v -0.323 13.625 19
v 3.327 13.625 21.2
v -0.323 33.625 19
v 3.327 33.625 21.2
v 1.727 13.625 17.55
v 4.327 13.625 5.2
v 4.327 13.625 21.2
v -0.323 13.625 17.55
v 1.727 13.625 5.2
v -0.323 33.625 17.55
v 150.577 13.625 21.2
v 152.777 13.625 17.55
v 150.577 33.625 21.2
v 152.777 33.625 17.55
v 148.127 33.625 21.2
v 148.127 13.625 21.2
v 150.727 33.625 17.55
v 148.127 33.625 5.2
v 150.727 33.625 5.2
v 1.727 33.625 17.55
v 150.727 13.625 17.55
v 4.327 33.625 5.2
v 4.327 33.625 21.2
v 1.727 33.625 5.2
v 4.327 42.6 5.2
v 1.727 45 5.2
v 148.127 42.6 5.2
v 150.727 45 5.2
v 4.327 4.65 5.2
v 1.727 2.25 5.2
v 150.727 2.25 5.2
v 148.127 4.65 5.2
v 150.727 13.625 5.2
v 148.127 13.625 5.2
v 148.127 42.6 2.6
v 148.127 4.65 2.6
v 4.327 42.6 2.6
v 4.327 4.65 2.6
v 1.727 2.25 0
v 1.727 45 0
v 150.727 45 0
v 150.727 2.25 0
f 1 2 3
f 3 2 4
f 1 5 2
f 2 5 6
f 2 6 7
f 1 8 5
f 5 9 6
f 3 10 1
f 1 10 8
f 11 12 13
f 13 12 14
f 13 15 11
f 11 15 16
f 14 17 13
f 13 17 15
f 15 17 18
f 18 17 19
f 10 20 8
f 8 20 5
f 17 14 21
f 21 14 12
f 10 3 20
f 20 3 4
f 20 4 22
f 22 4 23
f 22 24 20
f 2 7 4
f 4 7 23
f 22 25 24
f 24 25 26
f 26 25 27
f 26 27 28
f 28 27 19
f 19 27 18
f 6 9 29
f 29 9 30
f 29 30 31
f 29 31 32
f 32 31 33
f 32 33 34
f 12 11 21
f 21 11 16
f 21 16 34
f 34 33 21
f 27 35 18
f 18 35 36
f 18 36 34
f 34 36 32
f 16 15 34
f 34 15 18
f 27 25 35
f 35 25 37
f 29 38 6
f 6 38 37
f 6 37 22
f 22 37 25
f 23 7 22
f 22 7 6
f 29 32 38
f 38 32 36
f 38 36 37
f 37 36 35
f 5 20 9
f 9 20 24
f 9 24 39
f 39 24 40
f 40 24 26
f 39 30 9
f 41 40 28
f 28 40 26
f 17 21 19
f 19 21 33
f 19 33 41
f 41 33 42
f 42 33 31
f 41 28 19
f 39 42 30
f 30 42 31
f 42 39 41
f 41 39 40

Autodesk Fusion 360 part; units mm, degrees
sketch "Base" plane through (0, 0, 0) normal (0, 0, 1) x (1, 0, 0)
  line L0 (1.7267, 45) -> (150.7267, 45)
  line L1 (150.7267, 45) -> (150.7267, 2.25)
  line L2 (150.7267, 2.25) -> (1.7267, 2.25)
  line L3 (1.7267, 2.25) -> (1.7267, 45)
  dimension "d1" = 149
  dimension "d2" = 42.75
extrude "Extrude1" add sketch "Base" along normal blind 5.2
sketch "Frame" plane through (0, 0, 5.2) normal (0, 0, 1) x (-1, 0, 0)
  line L0 (-1.7267, -2.25) -> (-150.7267, -2.25)
  line L1 (-150.7267, -2.25) -> (-150.7267, -45)
  line L2 (-150.7267, -45) -> (-1.7267, -45)
  line L3 (-1.7267, -45) -> (-1.7267, -2.25)
  line L4 (-4.3267, -42.6) -> (-148.1267, -42.6)
  line L5 (-148.1267, -42.6) -> (-148.1267, -4.65)
  line L6 (-148.1267, -4.65) -> (-4.3267, -4.65)
  line L7 (-4.3267, -4.65) -> (-4.3267, -42.6)
  dimension "d5" = 2.4
  dimension "d6" = 2.6
  dimension "d7" = 2.4
  dimension "d8" = 2.6
extrude "Extrude2" cut sketch "Frame" against normal blind 2.6 contours L4 L5 L6 L7
sketch "Hook" plane through (0, 0, 5.2) normal (0, 0, 1) x (-1, 0, 0)
  line L0 (-148.1267, -42.6) -> (-148.1267, -4.65)
  line L1 (-148.1267, -4.65) -> (-4.3267, -4.65)
  line L2 (-4.3267, -4.65) -> (-4.3267, -42.6)
  line L3 (-4.3267, -42.6) -> (-148.1267, -42.6)
  line L4 (-1.7267, -2.25) -> (-150.7267, -2.25)
  line L5 (-150.7267, -2.25) -> (-150.7267, -45)
  line L6 (-150.7267, -45) -> (-1.7267, -45)
  line L7 (-1.7267, -45) -> (-1.7267, -2.25)
  line L8 (-1.7267, -33.625) -> (-4.3267, -33.625)
  line L9 (-4.3267, -13.625) -> (-1.7267, -13.625)
  line L10 (-148.1267, -33.625) -> (-150.7267, -33.625)
  line L11 (-148.1267, -13.625) -> (-150.7267, -13.625)
  dimension "d11" = 20
  dimension "d12" = 11.375
  dimension "d13" = 12.2767
  dimension "d14" = 11.375
  dimension "d15" = 20
extrude "Extrude3" add sketch "Hook" along normal blind 16 contours L0 L5 L10 L11 | L2 L7 L8 L9
sketch "Hook Left" plane through (0, 33.625, 0) normal (0, 1, 0) x (-1, 0, 0)
  line L0 (-150.7267, 5.2) -> (-148.1267, 5.2)
  line L1 (-148.1267, 5.2) -> (-148.1267, 21.2)
  line L2 (-148.1267, 21.2) -> (-150.7267, 21.2)
  line L3 (-150.7267, 21.2) -> (-150.7267, 5.2)
  line L4 (-148.1267, 21.2) -> (-152.7767, 21.2)
  line L5 (-152.7767, 21.2) -> (-152.7767, 17.55)
  line L6 (-152.7767, 17.55) -> (-148.1267, 17.55)
  line L7 (-148.1267, 17.55) -> (-148.1267, 21.2)
  dimension "d18" = 3.65
  dimension "d19" = 4.65
extrude "Extrude4" add sketch "Hook Left" against normal blind 20 contours L3 L4 L5 L6
sketch "Hook Right" plane through (0, 33.625, 0) normal (0, 1, 0) x (-1, 0, 0)
  line L0 (-4.3267, 5.2) -> (-1.7267, 5.2)
  line L1 (-1.7267, 5.2) -> (-1.7267, 21.2)
  line L2 (-1.7267, 21.2) -> (-4.3267, 21.2)
  line L3 (-4.3267, 21.2) -> (-4.3267, 5.2)
  line L4 (-4.3267, 21.2) -> (0.3233, 21.2)
  line L5 (0.3233, 21.2) -> (0.3233, 17.55)
  line L6 (0.3233, 17.55) -> (-4.3267, 17.55)
  line L7 (-4.3267, 17.55) -> (-4.3267, 21.2)
  dimension "d22" = 3.65
  dimension "d23" = 4.65
extrude "Extrude5" add sketch "Hook Right" against normal blind 20 contours L1 L4 L5 L6
chamfer "Chamfer1" distance 3.65 distance2 2.2 2 edges at (152.7767, 23.625, 21.2) (-0.3233, 23.625, 21.2) measured on face at (152.7767, 26.9583, 19.9833) measured on face at (2.7767, 20.2917, 21.2)
